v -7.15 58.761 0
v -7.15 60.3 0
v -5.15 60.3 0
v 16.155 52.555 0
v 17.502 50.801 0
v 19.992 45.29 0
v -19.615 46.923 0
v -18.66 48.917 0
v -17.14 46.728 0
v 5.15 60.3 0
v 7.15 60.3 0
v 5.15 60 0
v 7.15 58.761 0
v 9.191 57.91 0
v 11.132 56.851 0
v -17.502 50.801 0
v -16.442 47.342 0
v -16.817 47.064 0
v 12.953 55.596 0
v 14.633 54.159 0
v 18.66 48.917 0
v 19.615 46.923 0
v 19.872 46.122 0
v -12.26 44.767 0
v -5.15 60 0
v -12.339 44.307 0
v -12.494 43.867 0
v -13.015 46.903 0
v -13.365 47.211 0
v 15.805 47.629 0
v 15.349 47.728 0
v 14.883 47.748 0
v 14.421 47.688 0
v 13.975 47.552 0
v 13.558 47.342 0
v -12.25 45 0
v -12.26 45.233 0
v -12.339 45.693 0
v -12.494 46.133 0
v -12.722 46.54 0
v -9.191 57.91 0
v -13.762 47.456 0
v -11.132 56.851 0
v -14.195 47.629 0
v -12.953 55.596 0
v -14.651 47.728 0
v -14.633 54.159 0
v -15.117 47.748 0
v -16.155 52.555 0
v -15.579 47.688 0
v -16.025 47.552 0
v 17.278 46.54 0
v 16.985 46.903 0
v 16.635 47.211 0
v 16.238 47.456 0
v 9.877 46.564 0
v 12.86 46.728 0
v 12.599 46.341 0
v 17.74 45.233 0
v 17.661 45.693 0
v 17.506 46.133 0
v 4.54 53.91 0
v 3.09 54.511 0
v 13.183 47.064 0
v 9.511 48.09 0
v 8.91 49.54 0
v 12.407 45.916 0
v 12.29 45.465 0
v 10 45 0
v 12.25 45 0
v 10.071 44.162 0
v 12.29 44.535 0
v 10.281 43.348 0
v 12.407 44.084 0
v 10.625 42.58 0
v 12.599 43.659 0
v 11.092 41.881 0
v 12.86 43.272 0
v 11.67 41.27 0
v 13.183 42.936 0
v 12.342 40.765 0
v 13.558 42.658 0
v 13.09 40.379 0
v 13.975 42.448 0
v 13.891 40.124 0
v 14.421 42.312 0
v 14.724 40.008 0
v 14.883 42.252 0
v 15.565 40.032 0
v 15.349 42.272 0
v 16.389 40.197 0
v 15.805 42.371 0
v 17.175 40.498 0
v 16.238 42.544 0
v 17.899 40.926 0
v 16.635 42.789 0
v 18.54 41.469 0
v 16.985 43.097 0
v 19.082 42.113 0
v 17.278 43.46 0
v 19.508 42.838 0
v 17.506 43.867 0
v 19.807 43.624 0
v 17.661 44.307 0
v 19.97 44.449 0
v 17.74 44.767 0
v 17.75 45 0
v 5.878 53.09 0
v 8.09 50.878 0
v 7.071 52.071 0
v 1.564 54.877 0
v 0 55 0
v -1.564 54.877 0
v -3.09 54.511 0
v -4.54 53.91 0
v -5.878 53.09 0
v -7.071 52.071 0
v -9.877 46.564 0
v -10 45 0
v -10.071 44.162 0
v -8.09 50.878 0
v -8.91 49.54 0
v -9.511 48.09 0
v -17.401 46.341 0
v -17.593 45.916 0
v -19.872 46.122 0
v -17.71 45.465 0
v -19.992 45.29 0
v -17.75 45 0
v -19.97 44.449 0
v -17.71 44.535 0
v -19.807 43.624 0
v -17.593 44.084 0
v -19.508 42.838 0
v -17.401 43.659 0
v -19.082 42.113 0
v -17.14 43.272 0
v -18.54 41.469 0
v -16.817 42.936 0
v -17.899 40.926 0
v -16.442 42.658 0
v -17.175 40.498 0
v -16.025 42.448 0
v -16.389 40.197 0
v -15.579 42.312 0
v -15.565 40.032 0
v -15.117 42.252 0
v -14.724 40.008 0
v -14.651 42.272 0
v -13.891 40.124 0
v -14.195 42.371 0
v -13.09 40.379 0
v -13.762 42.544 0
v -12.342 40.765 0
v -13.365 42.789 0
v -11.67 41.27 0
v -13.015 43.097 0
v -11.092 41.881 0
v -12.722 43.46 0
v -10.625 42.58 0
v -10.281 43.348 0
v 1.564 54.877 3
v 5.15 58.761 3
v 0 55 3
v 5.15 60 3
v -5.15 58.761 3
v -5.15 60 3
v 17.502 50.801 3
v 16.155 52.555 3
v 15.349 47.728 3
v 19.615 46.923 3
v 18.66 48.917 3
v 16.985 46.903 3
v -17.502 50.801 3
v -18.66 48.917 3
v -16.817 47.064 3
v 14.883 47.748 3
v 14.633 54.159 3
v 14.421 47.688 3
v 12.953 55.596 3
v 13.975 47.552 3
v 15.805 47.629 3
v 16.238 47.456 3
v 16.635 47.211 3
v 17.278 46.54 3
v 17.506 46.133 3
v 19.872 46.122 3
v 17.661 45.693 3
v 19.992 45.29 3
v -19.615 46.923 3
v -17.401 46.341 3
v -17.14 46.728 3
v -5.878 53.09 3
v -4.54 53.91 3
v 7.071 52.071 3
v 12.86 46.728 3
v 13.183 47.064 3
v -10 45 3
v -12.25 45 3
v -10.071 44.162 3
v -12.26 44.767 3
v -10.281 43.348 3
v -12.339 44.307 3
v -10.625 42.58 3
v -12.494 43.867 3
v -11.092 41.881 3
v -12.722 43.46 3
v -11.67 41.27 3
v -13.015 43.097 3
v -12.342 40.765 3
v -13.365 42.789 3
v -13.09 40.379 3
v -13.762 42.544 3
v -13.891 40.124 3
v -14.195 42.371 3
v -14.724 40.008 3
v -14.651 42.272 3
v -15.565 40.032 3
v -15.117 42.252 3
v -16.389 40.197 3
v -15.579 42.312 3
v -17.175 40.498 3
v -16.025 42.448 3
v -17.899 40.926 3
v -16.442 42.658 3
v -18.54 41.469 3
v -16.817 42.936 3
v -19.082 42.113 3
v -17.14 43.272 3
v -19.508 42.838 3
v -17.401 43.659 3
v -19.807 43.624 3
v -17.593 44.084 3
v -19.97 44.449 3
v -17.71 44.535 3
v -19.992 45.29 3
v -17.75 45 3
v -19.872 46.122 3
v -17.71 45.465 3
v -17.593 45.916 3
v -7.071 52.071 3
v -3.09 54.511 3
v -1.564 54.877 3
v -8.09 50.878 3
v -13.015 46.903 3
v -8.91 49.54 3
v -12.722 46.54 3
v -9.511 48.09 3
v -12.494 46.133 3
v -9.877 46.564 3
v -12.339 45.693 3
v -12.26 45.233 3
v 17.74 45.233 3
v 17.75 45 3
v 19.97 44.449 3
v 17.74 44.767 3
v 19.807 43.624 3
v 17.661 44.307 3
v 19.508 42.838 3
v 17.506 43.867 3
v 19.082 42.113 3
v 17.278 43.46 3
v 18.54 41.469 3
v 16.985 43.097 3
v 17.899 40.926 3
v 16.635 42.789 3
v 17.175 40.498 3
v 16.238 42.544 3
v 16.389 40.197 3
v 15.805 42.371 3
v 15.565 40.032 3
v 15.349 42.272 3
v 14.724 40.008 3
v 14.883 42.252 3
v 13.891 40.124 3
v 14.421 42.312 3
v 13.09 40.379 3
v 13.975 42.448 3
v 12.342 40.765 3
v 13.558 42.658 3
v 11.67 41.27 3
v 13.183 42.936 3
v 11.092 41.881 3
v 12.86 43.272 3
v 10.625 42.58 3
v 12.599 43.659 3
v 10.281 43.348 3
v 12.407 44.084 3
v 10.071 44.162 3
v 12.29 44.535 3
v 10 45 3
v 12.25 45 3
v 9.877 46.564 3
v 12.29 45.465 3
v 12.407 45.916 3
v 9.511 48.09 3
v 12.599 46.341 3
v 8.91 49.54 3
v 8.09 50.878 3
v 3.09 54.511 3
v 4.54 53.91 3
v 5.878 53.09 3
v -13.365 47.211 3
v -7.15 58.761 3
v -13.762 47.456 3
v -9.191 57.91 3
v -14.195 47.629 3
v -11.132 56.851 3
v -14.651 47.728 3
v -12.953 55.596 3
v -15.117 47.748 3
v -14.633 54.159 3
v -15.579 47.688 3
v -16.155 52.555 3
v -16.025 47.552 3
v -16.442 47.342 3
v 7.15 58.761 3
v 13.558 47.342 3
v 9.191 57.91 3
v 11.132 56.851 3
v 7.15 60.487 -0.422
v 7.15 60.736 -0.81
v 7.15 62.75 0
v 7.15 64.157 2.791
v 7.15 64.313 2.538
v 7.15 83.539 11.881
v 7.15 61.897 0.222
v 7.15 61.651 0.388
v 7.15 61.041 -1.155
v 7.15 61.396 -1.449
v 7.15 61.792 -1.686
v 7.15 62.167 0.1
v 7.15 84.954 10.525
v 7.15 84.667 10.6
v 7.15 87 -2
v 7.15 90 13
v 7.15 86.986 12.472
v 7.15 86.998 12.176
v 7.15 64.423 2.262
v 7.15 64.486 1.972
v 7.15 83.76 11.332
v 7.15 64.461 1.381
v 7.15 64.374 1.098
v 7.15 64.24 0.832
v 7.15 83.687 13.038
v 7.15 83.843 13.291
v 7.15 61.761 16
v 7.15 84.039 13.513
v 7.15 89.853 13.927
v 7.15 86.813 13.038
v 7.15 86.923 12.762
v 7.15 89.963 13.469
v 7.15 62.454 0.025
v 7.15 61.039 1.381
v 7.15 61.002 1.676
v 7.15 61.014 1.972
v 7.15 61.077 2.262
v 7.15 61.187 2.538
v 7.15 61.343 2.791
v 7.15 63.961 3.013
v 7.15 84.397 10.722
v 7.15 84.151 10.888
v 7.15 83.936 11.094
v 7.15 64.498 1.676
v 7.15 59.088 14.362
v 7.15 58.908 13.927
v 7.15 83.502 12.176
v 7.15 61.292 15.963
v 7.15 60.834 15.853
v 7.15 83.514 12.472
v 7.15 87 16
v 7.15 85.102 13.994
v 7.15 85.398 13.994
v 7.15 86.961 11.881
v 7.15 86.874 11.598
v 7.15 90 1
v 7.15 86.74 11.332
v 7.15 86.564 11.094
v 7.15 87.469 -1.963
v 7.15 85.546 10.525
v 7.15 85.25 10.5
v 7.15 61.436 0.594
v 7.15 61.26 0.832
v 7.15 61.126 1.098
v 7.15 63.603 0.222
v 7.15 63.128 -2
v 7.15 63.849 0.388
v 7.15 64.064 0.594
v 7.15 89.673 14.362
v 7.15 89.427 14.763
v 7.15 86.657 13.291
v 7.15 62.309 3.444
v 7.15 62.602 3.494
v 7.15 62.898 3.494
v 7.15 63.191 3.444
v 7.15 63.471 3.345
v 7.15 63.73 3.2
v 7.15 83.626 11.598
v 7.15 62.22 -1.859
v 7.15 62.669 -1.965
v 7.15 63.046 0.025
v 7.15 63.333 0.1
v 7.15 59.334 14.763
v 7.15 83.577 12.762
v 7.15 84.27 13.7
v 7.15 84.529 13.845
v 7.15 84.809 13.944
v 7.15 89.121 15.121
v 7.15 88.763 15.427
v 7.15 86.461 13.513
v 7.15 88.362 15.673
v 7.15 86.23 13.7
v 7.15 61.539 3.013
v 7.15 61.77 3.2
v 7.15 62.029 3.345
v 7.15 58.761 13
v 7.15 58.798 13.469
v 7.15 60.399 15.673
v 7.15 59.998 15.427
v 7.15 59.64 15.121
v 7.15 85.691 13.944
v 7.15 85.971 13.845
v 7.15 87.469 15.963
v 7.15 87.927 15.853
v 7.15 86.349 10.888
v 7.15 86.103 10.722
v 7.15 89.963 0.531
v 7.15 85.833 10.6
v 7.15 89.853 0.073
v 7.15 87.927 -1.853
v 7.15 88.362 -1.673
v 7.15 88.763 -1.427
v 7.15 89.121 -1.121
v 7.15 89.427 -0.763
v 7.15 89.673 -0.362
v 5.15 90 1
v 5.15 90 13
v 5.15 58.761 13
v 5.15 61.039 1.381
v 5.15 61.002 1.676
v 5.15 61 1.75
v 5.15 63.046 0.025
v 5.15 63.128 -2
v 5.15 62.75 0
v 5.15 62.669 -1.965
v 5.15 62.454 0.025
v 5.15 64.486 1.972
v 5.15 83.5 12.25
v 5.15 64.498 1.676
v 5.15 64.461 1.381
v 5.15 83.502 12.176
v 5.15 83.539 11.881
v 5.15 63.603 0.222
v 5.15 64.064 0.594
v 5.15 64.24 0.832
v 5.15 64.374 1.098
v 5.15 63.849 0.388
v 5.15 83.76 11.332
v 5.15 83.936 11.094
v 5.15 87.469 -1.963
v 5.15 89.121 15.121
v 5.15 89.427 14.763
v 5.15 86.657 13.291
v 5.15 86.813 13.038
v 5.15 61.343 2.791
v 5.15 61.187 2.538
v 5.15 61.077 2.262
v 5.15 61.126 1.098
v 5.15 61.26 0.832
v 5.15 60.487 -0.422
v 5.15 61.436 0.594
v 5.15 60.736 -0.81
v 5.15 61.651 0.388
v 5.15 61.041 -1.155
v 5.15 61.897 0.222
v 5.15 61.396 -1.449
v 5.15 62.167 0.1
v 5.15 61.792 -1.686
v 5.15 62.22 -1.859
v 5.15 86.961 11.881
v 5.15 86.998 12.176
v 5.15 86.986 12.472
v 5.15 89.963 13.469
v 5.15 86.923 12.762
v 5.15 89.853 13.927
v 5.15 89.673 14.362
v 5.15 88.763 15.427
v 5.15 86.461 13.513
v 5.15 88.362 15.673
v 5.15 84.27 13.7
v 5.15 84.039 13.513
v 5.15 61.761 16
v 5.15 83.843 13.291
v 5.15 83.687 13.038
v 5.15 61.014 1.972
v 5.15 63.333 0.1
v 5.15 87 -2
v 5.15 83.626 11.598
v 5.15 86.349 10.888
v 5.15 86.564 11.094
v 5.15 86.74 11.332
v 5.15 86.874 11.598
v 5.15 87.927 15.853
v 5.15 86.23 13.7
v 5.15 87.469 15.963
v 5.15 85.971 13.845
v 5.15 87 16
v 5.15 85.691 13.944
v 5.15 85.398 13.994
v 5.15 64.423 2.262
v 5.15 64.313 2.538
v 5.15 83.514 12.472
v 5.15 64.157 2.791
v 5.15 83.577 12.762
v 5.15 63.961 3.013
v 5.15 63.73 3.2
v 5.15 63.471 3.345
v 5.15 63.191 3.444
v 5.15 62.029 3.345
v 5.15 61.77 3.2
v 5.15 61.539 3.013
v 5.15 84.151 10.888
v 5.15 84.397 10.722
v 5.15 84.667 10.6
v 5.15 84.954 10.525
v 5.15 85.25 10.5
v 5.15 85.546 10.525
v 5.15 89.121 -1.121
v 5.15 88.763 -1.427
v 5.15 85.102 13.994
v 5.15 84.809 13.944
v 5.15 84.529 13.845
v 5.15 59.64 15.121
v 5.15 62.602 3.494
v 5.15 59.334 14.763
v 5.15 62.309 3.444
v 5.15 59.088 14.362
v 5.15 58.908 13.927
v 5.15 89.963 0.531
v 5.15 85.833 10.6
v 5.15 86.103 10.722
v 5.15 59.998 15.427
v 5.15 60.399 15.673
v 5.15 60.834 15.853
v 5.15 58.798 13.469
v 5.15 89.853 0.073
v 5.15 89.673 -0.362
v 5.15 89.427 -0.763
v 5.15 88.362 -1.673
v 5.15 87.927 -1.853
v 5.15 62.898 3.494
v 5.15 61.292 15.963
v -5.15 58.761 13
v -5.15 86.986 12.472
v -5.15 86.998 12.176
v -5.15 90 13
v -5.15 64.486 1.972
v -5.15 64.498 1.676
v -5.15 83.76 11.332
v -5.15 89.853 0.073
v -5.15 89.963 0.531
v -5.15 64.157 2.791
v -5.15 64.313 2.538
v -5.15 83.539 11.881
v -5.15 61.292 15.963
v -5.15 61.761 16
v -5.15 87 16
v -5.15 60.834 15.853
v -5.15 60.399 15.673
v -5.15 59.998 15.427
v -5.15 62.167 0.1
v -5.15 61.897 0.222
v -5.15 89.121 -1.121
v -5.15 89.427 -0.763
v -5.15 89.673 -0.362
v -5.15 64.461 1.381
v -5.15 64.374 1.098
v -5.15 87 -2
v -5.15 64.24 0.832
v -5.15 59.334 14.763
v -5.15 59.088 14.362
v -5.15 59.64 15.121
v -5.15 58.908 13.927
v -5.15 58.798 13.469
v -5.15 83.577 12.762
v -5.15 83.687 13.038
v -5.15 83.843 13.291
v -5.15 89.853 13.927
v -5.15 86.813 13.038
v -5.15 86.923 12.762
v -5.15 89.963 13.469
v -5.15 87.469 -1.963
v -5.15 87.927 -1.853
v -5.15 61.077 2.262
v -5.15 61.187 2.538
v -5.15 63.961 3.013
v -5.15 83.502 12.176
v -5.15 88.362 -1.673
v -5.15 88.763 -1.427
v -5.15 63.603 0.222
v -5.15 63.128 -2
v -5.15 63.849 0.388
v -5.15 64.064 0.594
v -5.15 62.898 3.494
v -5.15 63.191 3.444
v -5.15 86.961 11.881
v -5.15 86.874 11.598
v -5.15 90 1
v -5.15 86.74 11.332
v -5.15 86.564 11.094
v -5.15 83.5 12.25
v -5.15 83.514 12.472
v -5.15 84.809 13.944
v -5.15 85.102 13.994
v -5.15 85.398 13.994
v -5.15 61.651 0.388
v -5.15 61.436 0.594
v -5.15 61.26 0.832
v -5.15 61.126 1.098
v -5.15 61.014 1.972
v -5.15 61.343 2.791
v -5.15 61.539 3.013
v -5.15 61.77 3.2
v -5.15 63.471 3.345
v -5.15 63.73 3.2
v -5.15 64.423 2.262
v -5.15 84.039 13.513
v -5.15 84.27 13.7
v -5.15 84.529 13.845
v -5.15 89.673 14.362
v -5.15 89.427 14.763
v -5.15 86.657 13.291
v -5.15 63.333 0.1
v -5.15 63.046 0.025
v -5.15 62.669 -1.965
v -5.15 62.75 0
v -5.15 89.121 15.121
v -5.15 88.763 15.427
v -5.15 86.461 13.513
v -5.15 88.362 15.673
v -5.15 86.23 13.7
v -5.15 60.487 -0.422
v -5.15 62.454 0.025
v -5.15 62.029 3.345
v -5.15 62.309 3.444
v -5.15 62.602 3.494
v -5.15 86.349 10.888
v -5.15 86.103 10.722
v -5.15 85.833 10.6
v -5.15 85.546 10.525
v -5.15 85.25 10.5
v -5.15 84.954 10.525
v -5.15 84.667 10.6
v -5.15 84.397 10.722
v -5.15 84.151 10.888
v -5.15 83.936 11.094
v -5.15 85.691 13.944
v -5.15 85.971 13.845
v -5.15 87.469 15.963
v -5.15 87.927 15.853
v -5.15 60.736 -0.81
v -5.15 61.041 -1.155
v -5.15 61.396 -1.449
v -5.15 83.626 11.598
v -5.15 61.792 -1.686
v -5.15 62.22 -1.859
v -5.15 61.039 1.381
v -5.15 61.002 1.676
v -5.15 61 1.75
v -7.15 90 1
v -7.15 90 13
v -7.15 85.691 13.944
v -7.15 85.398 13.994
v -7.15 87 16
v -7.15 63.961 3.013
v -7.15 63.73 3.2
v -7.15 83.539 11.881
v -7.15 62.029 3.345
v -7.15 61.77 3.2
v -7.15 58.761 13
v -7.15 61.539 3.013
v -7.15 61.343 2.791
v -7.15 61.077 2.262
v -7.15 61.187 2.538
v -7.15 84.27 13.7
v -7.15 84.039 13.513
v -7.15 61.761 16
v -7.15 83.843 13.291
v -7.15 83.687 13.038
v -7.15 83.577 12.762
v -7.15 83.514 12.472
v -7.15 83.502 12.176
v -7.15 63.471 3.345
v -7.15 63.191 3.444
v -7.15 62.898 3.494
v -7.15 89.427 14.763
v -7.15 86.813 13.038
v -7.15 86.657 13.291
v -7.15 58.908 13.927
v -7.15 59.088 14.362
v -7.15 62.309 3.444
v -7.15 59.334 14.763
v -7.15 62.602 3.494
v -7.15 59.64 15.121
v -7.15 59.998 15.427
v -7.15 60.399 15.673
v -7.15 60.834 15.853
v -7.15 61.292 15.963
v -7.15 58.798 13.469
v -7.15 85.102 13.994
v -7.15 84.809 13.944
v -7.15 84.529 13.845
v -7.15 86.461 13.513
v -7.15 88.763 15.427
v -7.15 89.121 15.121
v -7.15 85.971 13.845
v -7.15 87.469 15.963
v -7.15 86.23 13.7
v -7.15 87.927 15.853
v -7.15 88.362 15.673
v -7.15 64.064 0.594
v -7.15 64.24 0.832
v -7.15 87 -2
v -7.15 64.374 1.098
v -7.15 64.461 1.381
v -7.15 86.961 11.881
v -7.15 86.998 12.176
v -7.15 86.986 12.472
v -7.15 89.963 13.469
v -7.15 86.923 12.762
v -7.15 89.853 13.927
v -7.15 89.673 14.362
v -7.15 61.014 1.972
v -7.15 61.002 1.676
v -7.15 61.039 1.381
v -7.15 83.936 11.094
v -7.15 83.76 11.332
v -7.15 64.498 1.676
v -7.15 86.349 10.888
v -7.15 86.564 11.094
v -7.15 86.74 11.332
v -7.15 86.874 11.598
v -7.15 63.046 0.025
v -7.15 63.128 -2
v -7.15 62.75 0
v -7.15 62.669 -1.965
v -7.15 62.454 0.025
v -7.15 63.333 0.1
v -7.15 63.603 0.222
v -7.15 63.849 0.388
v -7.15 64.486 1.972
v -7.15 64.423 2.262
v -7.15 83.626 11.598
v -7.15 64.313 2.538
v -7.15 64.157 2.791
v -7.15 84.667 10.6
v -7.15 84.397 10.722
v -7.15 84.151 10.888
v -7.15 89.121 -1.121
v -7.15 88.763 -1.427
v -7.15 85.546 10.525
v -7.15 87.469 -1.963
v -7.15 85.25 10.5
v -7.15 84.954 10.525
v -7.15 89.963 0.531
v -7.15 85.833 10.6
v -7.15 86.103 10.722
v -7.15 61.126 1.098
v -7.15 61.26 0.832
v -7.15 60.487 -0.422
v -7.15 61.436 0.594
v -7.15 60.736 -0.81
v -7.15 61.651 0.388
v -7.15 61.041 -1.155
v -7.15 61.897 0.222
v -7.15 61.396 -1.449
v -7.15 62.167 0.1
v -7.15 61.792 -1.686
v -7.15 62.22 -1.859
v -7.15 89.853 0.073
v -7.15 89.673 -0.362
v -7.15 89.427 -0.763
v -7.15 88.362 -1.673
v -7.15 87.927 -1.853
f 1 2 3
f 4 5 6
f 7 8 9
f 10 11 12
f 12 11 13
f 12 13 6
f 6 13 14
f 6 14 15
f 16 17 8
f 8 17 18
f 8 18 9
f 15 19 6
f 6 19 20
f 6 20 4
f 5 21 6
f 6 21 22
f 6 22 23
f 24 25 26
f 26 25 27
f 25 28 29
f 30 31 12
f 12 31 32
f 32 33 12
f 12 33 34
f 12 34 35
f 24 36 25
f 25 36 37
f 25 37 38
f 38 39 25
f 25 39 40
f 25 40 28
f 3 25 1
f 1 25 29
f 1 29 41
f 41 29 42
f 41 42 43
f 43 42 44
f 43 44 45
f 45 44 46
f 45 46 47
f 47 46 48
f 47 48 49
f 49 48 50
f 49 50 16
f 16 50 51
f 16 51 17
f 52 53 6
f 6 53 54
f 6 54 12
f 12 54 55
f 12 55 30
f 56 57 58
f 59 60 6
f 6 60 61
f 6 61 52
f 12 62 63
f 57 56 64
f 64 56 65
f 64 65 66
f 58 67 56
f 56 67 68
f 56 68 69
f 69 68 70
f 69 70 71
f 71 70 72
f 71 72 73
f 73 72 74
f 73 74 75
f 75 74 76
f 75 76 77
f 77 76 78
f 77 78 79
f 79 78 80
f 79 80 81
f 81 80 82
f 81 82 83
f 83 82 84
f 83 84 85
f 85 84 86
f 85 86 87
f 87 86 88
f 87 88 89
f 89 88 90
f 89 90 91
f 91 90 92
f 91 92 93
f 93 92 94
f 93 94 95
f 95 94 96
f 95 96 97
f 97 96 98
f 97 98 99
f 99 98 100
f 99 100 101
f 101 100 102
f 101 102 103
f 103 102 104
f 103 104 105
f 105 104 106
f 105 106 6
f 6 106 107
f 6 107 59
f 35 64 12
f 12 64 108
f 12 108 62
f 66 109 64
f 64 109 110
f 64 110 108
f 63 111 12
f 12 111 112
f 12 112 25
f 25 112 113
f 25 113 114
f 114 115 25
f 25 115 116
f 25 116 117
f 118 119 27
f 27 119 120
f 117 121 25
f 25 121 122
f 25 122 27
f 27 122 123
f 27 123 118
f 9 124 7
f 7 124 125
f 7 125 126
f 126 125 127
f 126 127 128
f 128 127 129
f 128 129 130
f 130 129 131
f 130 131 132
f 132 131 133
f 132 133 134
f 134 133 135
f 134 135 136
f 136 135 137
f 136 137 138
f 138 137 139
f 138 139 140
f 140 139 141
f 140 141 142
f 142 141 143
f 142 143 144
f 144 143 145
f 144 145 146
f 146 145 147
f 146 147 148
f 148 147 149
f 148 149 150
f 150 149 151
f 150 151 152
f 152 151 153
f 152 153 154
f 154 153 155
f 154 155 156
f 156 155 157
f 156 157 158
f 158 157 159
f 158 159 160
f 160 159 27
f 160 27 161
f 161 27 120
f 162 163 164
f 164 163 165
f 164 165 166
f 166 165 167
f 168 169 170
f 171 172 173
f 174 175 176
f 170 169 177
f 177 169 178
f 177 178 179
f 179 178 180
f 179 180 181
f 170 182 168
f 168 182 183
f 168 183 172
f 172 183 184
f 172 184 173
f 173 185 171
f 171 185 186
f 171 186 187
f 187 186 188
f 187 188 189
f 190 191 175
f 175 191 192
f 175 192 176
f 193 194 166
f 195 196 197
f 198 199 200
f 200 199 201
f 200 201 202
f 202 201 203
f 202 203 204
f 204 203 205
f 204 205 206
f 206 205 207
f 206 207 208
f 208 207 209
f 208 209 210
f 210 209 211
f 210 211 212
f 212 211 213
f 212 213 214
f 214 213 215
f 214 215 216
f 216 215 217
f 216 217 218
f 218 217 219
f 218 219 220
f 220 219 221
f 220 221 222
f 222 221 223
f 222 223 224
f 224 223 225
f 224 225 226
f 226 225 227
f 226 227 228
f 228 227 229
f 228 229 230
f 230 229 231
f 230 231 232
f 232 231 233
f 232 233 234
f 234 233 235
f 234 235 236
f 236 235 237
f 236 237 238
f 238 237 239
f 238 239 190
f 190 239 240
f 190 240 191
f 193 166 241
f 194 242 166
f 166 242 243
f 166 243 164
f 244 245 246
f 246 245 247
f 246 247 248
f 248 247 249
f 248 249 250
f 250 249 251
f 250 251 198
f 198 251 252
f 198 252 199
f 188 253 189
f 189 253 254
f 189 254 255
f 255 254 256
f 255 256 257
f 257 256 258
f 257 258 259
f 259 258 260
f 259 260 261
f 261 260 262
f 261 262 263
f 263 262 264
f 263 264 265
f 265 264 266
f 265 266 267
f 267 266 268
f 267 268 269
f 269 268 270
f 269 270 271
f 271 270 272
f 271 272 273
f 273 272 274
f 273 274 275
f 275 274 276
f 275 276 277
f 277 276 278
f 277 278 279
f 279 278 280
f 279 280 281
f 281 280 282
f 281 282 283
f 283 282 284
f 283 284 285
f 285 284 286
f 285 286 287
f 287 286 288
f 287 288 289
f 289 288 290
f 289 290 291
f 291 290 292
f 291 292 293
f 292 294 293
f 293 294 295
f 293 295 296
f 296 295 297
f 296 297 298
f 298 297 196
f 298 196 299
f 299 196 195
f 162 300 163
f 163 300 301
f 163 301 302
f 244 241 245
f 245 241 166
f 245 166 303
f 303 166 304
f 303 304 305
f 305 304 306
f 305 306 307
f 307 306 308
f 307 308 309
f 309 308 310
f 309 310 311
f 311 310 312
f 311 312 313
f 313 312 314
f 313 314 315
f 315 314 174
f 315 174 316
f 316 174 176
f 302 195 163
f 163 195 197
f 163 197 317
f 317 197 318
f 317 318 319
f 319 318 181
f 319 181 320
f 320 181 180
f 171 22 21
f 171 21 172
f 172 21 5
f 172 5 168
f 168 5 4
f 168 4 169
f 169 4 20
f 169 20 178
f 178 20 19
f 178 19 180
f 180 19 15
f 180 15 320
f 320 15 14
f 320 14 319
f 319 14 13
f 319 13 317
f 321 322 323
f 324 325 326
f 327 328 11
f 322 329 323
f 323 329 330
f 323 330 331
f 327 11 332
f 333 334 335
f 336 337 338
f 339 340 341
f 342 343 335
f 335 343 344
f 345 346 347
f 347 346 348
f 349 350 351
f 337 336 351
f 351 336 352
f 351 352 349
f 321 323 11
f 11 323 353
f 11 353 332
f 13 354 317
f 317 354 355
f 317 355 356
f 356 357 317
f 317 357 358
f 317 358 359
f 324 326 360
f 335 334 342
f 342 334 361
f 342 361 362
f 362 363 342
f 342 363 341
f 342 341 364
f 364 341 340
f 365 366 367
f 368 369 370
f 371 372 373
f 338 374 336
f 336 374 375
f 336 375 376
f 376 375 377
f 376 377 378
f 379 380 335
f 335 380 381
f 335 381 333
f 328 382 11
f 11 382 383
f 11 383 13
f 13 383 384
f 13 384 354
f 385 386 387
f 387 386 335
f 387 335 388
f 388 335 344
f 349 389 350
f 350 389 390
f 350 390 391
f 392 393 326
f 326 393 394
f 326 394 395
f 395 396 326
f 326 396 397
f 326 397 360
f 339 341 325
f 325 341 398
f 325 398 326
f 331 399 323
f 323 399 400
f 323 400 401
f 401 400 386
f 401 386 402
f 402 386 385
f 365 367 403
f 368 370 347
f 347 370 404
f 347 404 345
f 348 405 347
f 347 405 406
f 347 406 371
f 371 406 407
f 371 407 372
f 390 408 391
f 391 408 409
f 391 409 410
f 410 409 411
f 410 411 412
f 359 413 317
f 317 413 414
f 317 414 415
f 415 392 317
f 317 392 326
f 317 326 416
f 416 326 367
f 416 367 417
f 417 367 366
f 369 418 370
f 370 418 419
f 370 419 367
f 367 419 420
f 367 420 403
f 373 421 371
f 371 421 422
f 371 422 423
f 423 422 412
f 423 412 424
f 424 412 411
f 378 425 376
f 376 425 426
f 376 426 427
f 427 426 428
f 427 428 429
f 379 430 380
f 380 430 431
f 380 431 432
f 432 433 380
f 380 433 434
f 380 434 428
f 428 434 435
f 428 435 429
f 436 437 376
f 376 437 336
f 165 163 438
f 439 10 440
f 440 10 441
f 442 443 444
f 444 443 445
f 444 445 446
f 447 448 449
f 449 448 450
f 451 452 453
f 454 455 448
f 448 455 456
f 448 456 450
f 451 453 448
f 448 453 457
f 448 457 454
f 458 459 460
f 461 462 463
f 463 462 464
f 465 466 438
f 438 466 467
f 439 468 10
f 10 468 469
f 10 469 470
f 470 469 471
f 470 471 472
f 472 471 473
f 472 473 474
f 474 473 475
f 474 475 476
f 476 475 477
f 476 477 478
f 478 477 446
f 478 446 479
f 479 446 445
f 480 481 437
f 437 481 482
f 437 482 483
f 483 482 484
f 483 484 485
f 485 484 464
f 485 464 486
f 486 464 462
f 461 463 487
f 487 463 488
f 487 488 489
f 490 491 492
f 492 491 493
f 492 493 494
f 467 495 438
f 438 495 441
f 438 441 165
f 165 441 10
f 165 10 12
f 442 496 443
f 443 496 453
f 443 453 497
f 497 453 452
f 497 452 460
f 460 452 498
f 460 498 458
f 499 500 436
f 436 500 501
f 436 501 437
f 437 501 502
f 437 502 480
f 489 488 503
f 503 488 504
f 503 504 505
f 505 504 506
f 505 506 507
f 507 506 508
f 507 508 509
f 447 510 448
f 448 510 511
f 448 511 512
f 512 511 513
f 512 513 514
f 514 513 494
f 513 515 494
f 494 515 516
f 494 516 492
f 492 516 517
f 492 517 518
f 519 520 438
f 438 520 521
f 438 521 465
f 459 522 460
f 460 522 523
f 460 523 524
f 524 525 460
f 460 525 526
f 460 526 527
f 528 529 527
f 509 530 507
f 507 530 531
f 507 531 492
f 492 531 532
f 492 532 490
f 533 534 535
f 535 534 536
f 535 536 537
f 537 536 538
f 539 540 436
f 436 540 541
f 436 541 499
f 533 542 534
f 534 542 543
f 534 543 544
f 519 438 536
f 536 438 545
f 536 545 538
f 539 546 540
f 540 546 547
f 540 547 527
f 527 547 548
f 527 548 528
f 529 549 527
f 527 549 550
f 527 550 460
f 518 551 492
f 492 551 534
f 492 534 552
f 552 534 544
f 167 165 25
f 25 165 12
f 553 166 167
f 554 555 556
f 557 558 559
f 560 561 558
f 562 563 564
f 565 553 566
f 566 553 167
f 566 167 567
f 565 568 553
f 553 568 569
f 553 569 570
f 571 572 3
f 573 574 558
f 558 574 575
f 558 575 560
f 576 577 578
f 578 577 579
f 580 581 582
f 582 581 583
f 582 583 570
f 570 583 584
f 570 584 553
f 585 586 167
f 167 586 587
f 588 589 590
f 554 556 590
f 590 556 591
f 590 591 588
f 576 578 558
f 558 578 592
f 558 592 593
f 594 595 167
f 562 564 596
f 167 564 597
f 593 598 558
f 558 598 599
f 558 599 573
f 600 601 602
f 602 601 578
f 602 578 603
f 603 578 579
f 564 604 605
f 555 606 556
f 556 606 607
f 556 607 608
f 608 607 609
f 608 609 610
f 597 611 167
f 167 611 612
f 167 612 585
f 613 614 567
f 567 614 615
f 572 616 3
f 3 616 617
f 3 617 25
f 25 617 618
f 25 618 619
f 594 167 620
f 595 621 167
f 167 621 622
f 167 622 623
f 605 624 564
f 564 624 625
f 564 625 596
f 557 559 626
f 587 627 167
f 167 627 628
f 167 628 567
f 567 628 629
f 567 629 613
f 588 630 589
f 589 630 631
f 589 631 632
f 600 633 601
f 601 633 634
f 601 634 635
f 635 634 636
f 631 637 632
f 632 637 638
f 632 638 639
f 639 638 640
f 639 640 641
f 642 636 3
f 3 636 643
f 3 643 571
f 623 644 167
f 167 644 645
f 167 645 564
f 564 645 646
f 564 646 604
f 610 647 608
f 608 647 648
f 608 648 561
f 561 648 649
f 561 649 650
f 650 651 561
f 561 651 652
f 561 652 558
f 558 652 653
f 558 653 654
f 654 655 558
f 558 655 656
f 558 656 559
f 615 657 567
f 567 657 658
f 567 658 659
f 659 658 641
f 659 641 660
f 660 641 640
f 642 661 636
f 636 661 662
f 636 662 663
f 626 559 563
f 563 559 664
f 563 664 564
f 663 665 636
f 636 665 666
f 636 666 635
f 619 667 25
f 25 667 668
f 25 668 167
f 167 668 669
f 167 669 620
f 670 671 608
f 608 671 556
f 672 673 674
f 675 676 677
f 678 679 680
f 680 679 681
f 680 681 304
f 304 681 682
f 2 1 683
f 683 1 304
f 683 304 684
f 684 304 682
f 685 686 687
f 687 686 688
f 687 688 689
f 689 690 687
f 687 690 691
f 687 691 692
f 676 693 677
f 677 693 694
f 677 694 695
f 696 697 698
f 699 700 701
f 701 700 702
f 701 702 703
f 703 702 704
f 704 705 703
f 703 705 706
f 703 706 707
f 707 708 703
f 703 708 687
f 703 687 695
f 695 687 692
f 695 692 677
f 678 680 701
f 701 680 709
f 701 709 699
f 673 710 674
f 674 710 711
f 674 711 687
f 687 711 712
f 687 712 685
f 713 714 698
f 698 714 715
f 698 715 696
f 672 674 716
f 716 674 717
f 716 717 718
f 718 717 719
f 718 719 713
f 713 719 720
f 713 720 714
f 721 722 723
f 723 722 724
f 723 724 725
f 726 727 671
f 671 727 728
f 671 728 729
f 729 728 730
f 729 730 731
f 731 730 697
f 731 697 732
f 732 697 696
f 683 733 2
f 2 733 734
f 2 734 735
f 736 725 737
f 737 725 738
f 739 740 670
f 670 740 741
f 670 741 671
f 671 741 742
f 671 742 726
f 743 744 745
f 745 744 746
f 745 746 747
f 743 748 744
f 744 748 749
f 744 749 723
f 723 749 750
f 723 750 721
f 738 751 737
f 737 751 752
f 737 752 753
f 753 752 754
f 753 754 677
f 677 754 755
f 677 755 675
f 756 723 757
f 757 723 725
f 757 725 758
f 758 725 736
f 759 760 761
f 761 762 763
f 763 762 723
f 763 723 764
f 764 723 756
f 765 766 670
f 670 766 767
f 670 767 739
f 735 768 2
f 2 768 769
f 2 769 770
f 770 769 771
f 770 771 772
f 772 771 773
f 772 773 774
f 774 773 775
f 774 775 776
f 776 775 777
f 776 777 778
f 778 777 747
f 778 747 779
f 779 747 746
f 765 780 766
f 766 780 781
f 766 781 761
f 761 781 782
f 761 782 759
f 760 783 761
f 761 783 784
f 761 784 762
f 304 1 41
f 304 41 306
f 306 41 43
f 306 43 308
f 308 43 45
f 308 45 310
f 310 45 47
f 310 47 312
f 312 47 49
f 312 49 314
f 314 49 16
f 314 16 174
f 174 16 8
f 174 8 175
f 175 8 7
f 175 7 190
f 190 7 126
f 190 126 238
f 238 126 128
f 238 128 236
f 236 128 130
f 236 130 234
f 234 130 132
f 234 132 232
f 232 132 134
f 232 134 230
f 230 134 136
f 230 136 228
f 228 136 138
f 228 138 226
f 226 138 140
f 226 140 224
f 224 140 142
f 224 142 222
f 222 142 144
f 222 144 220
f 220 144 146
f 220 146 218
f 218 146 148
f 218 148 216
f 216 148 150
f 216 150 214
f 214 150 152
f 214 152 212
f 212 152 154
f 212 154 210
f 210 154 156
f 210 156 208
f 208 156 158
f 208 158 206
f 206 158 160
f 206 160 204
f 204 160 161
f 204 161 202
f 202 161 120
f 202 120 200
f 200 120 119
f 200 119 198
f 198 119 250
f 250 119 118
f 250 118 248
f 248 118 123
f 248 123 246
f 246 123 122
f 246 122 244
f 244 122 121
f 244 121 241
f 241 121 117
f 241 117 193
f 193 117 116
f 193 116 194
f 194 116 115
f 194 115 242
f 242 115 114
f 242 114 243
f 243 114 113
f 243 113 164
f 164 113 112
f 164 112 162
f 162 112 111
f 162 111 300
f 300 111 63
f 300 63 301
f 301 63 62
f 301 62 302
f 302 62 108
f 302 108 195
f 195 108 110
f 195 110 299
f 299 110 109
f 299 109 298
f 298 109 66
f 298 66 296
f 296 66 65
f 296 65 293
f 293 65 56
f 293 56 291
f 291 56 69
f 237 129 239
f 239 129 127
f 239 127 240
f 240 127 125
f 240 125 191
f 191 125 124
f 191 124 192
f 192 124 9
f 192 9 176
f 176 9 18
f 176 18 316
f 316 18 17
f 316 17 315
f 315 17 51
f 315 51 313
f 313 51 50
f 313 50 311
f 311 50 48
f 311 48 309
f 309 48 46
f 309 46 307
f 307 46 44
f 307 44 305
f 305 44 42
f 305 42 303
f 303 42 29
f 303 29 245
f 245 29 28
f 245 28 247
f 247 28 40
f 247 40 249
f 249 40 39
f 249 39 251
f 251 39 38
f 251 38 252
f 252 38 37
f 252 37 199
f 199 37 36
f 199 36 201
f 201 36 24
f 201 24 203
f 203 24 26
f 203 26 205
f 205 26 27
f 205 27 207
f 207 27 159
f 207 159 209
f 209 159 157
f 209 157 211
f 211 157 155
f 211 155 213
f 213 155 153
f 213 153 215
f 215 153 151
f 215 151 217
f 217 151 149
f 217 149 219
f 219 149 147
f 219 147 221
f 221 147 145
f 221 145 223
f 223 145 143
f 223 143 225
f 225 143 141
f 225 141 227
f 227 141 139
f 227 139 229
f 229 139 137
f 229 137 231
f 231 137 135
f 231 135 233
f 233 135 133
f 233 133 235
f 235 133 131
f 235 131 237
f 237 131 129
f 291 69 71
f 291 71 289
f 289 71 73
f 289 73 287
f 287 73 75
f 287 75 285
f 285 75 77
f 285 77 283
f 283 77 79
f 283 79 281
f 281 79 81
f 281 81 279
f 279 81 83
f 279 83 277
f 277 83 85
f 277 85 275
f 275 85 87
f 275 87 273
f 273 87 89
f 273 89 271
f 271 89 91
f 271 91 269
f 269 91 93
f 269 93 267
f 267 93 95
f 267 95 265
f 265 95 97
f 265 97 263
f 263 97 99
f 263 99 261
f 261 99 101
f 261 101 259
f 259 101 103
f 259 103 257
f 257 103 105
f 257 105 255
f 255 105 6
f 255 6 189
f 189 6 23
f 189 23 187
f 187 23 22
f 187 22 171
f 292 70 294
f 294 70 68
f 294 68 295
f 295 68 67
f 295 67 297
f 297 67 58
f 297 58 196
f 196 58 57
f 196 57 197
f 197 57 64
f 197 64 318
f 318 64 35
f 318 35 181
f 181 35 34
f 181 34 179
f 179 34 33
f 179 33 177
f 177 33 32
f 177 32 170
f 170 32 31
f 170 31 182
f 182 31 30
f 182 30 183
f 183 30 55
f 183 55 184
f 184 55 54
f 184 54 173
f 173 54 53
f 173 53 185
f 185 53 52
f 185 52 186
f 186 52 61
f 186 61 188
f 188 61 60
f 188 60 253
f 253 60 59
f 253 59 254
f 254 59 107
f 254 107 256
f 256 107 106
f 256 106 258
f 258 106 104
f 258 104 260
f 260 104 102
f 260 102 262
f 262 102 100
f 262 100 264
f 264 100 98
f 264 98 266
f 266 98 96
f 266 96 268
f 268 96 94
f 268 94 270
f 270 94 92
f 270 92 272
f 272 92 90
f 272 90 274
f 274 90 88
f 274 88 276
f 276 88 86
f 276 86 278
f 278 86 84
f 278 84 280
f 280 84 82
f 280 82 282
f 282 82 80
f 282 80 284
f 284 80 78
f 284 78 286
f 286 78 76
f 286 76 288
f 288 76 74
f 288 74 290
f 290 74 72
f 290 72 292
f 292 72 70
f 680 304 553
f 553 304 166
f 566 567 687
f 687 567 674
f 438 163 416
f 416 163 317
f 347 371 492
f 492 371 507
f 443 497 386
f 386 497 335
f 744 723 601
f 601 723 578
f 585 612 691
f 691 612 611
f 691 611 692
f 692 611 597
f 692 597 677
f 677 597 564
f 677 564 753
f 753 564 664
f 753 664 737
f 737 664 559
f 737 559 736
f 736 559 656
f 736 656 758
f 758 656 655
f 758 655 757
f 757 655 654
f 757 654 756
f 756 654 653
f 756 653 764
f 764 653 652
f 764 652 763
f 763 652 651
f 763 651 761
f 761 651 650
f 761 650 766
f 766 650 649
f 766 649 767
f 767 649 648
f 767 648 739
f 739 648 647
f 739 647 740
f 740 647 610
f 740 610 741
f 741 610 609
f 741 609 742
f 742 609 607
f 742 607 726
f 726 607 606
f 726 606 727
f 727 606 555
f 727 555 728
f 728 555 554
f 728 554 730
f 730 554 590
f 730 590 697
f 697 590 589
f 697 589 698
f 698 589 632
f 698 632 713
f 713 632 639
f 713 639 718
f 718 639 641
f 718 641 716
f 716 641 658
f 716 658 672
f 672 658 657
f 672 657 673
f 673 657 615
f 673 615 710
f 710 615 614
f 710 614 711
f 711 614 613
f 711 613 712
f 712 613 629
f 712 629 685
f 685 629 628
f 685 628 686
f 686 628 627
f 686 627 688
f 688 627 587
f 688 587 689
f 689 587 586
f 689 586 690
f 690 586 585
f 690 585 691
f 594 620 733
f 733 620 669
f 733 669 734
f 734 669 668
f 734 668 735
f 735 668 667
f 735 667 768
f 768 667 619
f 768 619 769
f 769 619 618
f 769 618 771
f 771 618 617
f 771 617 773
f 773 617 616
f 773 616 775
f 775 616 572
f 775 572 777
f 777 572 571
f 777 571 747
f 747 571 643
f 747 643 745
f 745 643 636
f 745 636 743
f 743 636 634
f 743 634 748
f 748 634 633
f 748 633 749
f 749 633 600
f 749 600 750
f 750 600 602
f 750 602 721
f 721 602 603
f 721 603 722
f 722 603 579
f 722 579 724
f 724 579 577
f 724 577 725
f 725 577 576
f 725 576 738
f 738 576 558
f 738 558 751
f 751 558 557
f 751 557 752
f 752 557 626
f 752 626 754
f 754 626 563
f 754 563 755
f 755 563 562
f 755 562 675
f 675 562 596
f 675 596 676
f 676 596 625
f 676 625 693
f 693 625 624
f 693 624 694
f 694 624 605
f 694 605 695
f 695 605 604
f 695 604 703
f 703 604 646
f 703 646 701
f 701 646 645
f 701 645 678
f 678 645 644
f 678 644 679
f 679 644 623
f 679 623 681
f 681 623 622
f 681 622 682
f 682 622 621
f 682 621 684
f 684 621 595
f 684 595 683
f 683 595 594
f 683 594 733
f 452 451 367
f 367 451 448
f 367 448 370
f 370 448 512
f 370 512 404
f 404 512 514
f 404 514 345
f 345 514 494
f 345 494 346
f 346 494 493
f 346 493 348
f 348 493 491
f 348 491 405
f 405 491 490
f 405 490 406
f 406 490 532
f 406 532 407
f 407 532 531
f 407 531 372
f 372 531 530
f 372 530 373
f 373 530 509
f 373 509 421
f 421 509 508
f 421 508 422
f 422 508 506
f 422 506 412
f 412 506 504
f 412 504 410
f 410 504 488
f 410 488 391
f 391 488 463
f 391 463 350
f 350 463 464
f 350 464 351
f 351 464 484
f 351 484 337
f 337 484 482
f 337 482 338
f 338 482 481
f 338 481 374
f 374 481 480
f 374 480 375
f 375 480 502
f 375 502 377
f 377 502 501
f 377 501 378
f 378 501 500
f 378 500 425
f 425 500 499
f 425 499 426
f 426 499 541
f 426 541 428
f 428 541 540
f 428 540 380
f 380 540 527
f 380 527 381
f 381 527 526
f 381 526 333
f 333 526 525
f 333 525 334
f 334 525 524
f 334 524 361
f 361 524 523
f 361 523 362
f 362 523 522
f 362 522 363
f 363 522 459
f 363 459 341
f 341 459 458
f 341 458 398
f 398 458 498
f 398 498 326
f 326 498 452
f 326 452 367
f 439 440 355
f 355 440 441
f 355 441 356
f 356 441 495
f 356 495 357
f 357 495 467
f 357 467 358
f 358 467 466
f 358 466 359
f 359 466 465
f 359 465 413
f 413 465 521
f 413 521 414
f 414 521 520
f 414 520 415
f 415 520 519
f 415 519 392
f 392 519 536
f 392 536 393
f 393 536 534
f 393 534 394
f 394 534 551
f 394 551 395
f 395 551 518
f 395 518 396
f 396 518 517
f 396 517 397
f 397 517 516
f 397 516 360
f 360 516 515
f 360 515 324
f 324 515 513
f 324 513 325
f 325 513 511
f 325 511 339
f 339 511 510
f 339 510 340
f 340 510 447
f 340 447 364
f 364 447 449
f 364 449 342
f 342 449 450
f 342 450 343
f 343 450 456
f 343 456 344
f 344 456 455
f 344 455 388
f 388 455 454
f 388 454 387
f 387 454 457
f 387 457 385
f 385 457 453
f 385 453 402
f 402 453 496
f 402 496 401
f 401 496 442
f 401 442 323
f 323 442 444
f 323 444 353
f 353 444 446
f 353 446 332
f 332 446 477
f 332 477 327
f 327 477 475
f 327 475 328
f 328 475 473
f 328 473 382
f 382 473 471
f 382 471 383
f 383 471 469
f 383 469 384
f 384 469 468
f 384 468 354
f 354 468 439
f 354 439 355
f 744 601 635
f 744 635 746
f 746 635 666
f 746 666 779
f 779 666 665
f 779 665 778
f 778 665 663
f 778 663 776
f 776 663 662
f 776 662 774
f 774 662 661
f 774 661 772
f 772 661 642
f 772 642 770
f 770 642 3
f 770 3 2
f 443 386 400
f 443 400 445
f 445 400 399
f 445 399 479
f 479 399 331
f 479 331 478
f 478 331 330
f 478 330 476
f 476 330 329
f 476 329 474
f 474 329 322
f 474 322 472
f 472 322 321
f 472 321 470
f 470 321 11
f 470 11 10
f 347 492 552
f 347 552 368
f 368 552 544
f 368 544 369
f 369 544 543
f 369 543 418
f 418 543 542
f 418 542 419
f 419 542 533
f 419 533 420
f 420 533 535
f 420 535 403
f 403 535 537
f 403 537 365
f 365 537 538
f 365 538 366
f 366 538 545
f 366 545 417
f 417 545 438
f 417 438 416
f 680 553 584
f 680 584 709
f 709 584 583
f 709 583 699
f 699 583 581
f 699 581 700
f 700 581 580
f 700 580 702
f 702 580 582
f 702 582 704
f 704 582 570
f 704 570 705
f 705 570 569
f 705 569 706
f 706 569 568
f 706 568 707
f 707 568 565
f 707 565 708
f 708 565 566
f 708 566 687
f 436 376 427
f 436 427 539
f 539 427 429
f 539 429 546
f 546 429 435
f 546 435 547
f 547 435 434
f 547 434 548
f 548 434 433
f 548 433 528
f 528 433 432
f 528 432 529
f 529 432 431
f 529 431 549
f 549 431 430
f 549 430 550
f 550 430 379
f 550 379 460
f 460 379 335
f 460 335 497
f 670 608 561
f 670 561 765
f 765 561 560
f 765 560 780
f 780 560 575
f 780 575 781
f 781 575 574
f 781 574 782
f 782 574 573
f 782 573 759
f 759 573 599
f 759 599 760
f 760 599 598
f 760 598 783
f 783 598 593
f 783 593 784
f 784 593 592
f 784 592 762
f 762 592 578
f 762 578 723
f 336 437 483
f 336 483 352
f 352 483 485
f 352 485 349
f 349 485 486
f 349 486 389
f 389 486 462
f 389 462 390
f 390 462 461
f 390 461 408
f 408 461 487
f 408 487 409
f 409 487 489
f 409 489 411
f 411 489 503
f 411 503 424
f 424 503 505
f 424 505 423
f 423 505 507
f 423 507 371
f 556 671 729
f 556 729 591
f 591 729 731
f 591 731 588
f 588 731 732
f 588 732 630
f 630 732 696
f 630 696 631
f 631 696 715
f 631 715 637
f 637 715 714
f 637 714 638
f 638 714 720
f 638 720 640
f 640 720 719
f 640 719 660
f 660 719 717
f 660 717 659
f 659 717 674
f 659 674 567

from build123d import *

# Parameters (mm, degrees)
SKETCH2_R           = 5
SKETCH2_R_2         = 2.75
SKETCH2_W           = 2
SKETCH2_H           = 30
BOSS_EXTRUDE1_DEPTH = 3
SKETCH3_W           = 2
SKETCH3_H           = 31.239003023
BOSS_EXTRUDE2_DEPTH = 13
SKETCH4_W           = 2
SKETCH4_H           = 29.7
BOSS_EXTRUDE3_DEPTH = 2
SKETCH5_R           = 1.75
CUT_EXTRUDE1_DEPTH  = 96.357865433
FILLET1_R           = 3


with BuildPart() as part:
    # Sketch2 → Boss-Extrude1 (new body)
    # profile 1 of 13: a face of its own
    with BuildSketch(Plane.XY):
        with BuildLine():
            Line((0, 55), (-5.15, 55))
            Line((-5.15, 55), (-7.15, 55))
            Line((-7.15, 55), (-7.15, 58.760996977))
            ThreePointArc((-7.15, 58.760996977), (-14.633199965, 54.158827301), (-19.615384615, 46.923076923))
            ThreePointArc((-19.615384615, 46.923076923), (-14.019419324, 49.902903378), (-10, 45))
            ThreePointArc((-10, 45), (-7.071067812, 52.071067812), (0, 55))
        make_face()
    # profile 2 of 13: a face of its own
    with BuildSketch(Plane.XY):
        with Locations((-15, 45)):
            Circle(SKETCH2_R)
        with Locations((-15, 45)):
            Circle(SKETCH2_R_2, mode=Mode.SUBTRACT)
    # profile 3 of 13: a face of its own
    with BuildSketch(Plane.XY):
        with BuildLine():
            Line((7.15, 55), (5.15, 55))
            Line((5.15, 55), (0, 55))
            ThreePointArc((0, 55), (7.071067812, 52.071067812), (10, 45))
            ThreePointArc((10, 45), (14.019419324, 49.902903378), (19.615384615, 46.923076923))
            ThreePointArc((19.615384615, 46.923076923), (14.633199965, 54.158827301), (7.15, 58.760996977))
            Line((7.15, 58.760996977), (7.15, 55))
        make_face()
    # profile 4 of 13: a face of its own
    with BuildSketch(Plane.XY):
        with Locations((15, 45)):
            Circle(SKETCH2_R)
        with Locations((15, 45)):
            Circle(SKETCH2_R_2, mode=Mode.SUBTRACT)
    # profile 5 of 13: a face of its own
    with BuildSketch(Plane.XY):
        with BuildLine():
            ThreePointArc((5.15, 59.366498248), (2.594408626, 59.841029939), (0, 60))
            ThreePointArc((0, 60), (-2.594408626, 59.841029939), (-5.15, 59.366498248))
            Line((-5.15, 59.366498248), (-5.15, 55))
            Line((-5.15, 55), (0, 55))
            Line((0, 55), (5.15, 55))
            Line((5.15, 55), (5.15, 59.366498248))
        make_face()
    # profile 6 of 13: a face of its own
    with BuildSketch(Plane.XY):
        with BuildLine():
            ThreePointArc((7.15, 58.760996977), (6.157447356, 59.088346591), (5.15, 59.366498248))
            Line((5.15, 59.366498248), (5.15, 55))
            Line((5.15, 55), (7.15, 55))
            Line((7.15, 55), (7.15, 58.760996977))
        make_face()
    # profile 7 of 13: a face of its own
    with BuildSketch(Plane.XY):
        with BuildLine():
            Line((-5.15, 55), (-5.15, 59.366498248))
            ThreePointArc((-5.15, 59.366498248), (-6.157447356, 59.088346591), (-7.15, 58.760996977))
            Line((-7.15, 58.760996977), (-7.15, 55))
            Line((-7.15, 55), (-5.15, 55))
        make_face()
    # profile 8 of 13: a face of its own
    with BuildSketch(Plane.XY):
        with Locations((-6.15, 75)):
            Rectangle(SKETCH2_W, SKETCH2_H)
    # profile 9 of 13: a face of its own
    with BuildSketch(Plane.XY):
        with BuildLine():
            Line((-5.15, 59.366498248), (-5.15, 60))
            Line((-5.15, 60), (-7.15, 60))
            Line((-7.15, 60), (-7.15, 58.760996977))
            ThreePointArc((-7.15, 58.760996977), (-6.157447356, 59.088346591), (-5.15, 59.366498248))
        make_face()
    # profile 10 of 13: a face of its own
    with BuildSketch(Plane.XY):
        with BuildLine():
            ThreePointArc((-5.15, 59.366498248), (-2.594408626, 59.841029939), (0, 60))
            Line((0, 60), (-5.15, 60))
            Line((-5.15, 60), (-5.15, 59.366498248))
        make_face()
    # profile 11 of 13: a face of its own
    with BuildSketch(Plane.XY):
        with BuildLine():
            Line((5.15, 60), (0, 60))
            ThreePointArc((0, 60), (2.594408626, 59.841029939), (5.15, 59.366498248))
            Line((5.15, 59.366498248), (5.15, 60))
        make_face()
    # profile 12 of 13: a face of its own
    with BuildSketch(Plane.XY):
        with BuildLine():
            Line((7.15, 60), (5.15, 60))
            Line((5.15, 60), (5.15, 59.366498248))
            ThreePointArc((5.15, 59.366498248), (6.157447356, 59.088346591), (7.15, 58.760996977))
            Line((7.15, 58.760996977), (7.15, 60))
        make_face()
    # profile 13 of 13: a face of its own
    with BuildSketch(Plane.XY):
        with Locations((6.15, 75)):
            Rectangle(SKETCH2_W, SKETCH2_H)
    extrude(amount=BOSS_EXTRUDE1_DEPTH)

    # Sketch3 → Boss-Extrude2 (add)
    with BuildSketch(Plane.XY.offset(3)):
        with Locations((-6.15, 74.380498488)):
            Rectangle(SKETCH3_W, SKETCH3_H)
        with Locations((6.15, 74.380498488)):
            Rectangle(SKETCH3_W, SKETCH3_H)
    extrude(amount=BOSS_EXTRUDE2_DEPTH)

    # Sketch4 → Boss-Extrude3 (add)
    with BuildSketch(Plane(origin=(0, 0, 0), x_dir=(-1, 0, 0), z_dir=(0, 0, -1))):
        with Locations((-6.15, 75.15)):
            Rectangle(SKETCH4_W, SKETCH4_H)
        with Locations((6.15, 75.15)):
            Rectangle(SKETCH4_W, SKETCH4_H)
    extrude(amount=BOSS_EXTRUDE3_DEPTH)

    # Sketch5 → Cut-Extrude1 (cut, through all)
    with BuildSketch(Plane(origin=(7.15, 0, 0), x_dir=(0, 0, -1), z_dir=(1, 0, 0))):
        with Locations((-1.75, 62.75)):
            Circle(SKETCH5_R)
        with Locations((-12.25, 85.25)):
            Circle(SKETCH5_R)
    extrude(amount=-CUT_EXTRUDE1_DEPTH, mode=Mode.SUBTRACT)

    # Fillet1
    # the kernel refuses this fillet: 3 mm, written as the material it takes off along each edge
    with BuildSketch(Plane(origin=(1.921067812, 60.3, -2), x_dir=(0, 0, 1), z_dir=(-1, 0, 0))) as fillet1_piece_1:
        with BuildLine():
            CenterArc((3, 2.828427125), FILLET1_R, 180, 70.528779366)
            Line((0, 2.828427125), (-0.06, 2.828427125))
            Line((-0.06, 2.828427125), (-0.06, 0))
            Line((-0.06, 0), (0, -0.06))
            ThreePointArc((0, -0.06), (1, -0.06), (1.98, -0.056568542))
            Line((1.98, -0.056568542), (2, 0))
        make_face()
    extrude(amount=16.142135624, mode=Mode.SUBTRACT)
    with BuildSketch(Plane(origin=(-1.921067812, 60.3, -2), x_dir=(0, 0, 1), z_dir=(1, 0, 0))) as fillet1_piece_2:
        with BuildLine():
            CenterArc((3, -2.828427125), FILLET1_R, 109.471220634, 70.528779366)
            Line((0, -2.828427125), (-0.06, -2.828427125))
            Line((-0.06, -2.828427125), (-0.06, 0))
            Line((-0.06, 0), (0, 0.06))
            ThreePointArc((0, 0.06), (1, 0.06), (1.98, 0.056568542))
            Line((1.98, 0.056568542), (2, 0))
        make_face()
    extrude(amount=16.142135624, mode=Mode.SUBTRACT)
    with BuildSketch(Plane(origin=(14.65, 58.760996977, 16), x_dir=(0, 0, -1), z_dir=(-1, 0, 0)), Plane(origin=(14.65, 90, -2), x_dir=(0, 0, 1), z_dir=(-1, 0, 0)), Plane(origin=(-14.65, 90, -2), x_dir=(0, -1, 0), z_dir=(1, 0, 0)), Plane(origin=(-2.35, 90, 16), x_dir=(0, 0, -1), z_dir=(1, 0, 0)), Plane(origin=(2.35, 90, 16), x_dir=(0, -1, 0), z_dir=(-1, 0, 0))) as fillet1_piece_3:
        with BuildLine():
            CenterArc((FILLET1_R, -FILLET1_R), FILLET1_R, 90, 90)
            Line((0, -FILLET1_R), (-FILLET1_R * 0.02, -FILLET1_R))
            Line((-FILLET1_R * 0.02, -FILLET1_R), (-FILLET1_R * 0.02, FILLET1_R * 0.02))
            Line((-FILLET1_R * 0.02, FILLET1_R * 0.02), (FILLET1_R, FILLET1_R * 0.02))
            Line((FILLET1_R, FILLET1_R * 0.02), (FILLET1_R, 0))
        make_face()
    extrude(amount=17, mode=Mode.SUBTRACT)
    with BuildSketch(Plane(origin=(-14.65, 58.760996977, 16), x_dir=(0, 0, -1), z_dir=(1, 0, 0))) as fillet1_piece_4:
        with BuildLine():
            CenterArc((FILLET1_R, FILLET1_R), FILLET1_R, 180, 90)
            Line((0, FILLET1_R), (-FILLET1_R * 0.02, FILLET1_R))
            Line((-FILLET1_R * 0.02, FILLET1_R), (-FILLET1_R * 0.02, -FILLET1_R * 0.02))
            Line((-FILLET1_R * 0.02, -FILLET1_R * 0.02), (FILLET1_R, -FILLET1_R * 0.02))
            Line((FILLET1_R, -FILLET1_R * 0.02), (FILLET1_R, 0))
        make_face()
    extrude(amount=17, mode=Mode.SUBTRACT)


solid = part.part
